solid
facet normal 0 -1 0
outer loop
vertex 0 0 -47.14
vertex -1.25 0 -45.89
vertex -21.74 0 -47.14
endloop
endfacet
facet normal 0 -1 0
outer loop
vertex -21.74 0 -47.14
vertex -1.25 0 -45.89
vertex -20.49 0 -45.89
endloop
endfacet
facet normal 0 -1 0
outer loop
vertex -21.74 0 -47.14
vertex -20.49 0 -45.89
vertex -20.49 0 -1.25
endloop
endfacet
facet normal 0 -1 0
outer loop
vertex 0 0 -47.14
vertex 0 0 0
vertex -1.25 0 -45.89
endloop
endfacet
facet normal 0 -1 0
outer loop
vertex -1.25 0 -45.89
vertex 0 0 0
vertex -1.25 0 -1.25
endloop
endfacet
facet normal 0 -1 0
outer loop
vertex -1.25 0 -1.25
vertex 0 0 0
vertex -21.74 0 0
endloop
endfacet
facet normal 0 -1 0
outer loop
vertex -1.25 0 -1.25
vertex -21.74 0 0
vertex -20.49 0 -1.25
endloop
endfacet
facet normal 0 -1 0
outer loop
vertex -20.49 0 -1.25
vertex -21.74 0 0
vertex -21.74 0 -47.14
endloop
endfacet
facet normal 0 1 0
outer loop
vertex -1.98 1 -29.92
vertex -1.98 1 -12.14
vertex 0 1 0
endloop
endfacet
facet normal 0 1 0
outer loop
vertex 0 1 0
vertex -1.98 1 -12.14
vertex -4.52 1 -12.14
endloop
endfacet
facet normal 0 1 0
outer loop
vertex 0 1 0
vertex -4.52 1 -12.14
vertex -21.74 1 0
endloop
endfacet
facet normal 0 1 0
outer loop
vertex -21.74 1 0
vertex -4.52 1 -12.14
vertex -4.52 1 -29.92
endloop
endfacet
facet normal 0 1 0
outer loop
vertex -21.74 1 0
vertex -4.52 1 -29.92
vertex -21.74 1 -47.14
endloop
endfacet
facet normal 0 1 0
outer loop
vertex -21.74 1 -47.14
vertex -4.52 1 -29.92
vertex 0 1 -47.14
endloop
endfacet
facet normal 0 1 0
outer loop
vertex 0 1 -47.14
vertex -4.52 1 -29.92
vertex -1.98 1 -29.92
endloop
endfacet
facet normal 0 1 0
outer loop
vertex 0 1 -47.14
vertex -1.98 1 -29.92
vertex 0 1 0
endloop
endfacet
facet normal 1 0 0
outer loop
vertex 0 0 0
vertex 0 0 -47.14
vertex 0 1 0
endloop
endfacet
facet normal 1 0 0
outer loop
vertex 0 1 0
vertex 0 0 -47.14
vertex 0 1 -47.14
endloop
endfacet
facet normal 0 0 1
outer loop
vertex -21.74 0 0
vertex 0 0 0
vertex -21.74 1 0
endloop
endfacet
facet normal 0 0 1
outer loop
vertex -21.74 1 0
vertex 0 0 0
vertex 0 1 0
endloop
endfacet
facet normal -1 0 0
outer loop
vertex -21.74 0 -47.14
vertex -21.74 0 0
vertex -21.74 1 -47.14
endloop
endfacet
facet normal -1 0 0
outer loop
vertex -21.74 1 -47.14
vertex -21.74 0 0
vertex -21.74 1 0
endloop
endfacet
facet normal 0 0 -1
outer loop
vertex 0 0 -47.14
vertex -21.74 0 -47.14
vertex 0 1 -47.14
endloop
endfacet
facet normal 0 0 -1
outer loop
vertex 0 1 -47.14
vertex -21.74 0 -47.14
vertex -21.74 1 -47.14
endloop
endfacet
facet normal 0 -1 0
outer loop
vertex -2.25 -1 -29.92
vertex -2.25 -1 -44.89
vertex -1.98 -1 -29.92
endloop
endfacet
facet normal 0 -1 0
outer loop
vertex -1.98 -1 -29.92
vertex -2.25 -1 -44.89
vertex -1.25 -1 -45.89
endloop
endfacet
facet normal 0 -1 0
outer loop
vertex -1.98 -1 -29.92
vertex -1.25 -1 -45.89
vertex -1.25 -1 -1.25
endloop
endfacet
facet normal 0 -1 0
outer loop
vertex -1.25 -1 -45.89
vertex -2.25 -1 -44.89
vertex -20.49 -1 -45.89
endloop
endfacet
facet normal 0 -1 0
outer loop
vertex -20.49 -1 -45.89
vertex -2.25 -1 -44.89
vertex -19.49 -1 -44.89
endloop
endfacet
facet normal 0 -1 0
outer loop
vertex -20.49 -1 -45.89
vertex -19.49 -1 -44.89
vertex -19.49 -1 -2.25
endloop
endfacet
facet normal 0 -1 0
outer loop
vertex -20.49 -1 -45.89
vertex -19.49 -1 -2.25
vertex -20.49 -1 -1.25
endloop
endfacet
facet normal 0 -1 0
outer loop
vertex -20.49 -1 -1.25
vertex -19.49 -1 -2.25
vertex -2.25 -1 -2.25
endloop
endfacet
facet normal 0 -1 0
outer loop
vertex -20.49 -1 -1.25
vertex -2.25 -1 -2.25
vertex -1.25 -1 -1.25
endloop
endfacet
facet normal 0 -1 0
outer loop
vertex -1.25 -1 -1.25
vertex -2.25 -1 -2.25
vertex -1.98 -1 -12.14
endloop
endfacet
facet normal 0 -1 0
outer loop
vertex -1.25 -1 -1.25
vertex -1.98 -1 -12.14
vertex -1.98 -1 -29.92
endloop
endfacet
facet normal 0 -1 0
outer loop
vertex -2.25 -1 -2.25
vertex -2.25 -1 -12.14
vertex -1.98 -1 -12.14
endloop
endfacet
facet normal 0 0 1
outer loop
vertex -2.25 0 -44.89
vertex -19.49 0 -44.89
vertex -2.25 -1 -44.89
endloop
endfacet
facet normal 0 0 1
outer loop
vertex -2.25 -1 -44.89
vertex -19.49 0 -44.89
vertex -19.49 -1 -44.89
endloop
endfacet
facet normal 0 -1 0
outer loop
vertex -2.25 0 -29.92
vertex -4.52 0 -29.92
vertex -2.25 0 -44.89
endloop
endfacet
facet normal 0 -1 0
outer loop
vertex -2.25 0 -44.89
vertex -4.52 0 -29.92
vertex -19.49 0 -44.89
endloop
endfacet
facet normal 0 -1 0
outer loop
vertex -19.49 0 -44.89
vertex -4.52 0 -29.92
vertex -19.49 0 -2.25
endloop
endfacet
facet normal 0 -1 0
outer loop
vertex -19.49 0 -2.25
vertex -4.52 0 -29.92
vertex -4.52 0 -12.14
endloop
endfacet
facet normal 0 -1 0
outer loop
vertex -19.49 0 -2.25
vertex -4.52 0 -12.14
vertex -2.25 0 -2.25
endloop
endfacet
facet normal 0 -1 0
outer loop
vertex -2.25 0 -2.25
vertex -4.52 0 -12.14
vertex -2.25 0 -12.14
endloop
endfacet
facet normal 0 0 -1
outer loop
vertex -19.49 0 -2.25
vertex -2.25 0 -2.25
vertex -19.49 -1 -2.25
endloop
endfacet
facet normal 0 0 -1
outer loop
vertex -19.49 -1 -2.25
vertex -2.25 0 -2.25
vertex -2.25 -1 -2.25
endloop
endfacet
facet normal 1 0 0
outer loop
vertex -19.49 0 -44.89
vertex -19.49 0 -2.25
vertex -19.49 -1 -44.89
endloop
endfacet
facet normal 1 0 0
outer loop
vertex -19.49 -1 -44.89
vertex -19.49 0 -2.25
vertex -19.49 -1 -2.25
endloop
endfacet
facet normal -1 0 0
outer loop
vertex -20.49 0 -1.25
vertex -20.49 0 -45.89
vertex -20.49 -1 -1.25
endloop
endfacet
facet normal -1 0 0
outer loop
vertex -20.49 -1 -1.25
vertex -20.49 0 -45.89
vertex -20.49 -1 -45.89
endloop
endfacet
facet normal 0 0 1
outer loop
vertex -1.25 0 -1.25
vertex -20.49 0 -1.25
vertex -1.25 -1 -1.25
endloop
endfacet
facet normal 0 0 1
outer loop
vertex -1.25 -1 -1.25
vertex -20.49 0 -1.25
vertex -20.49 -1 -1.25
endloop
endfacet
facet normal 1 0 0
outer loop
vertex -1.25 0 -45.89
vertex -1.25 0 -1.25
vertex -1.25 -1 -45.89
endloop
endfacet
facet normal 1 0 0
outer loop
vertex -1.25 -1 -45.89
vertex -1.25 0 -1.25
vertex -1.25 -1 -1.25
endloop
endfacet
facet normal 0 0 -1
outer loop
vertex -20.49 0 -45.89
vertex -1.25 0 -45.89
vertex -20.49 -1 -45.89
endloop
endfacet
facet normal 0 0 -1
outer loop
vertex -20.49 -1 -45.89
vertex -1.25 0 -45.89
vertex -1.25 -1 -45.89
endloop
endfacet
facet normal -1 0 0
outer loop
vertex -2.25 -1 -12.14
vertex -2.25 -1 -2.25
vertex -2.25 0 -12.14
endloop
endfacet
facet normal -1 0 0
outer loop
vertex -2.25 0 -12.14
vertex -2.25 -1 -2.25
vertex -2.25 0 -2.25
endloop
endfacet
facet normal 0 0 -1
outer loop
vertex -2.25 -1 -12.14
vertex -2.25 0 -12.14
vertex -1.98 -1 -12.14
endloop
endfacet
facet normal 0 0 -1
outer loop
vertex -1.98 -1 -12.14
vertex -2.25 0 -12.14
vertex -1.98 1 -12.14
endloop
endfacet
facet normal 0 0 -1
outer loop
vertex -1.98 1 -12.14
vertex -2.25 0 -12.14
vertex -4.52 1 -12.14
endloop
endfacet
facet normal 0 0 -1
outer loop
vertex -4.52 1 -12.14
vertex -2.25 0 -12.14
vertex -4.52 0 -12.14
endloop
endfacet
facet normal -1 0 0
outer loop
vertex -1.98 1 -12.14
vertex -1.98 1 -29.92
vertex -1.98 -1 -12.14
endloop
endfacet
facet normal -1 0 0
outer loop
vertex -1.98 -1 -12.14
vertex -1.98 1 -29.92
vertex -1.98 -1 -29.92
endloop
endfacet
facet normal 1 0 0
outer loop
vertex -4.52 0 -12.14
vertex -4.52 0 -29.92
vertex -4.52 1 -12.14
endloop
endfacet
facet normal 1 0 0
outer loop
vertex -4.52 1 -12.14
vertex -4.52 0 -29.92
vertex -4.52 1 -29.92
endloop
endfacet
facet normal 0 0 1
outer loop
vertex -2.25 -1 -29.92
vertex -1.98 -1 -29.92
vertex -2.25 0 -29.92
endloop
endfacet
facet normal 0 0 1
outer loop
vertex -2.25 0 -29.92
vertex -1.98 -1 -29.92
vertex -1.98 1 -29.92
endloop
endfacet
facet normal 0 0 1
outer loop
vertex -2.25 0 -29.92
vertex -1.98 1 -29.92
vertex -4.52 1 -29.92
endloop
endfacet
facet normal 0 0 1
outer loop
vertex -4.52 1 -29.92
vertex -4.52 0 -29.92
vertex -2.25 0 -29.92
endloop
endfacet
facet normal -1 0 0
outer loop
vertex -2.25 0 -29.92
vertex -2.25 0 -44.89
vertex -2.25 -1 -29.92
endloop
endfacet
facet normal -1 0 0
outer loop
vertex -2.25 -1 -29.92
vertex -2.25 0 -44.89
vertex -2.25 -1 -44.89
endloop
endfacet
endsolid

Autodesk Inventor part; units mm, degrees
ref_plane "YZ Plane" through (0, 0, 0) normal (1, 0, 0) x (0, 1, 0)
ref_plane "XZ Plane" through (0, 0, 0) normal (0, 1, 0) x (-1, 0, 0)
ref_plane "XY Plane" through (0, 0, 0) normal (0, 0, 1) x (1, 0, 0)
sketch "Sketch1" plane through (0, 0, 0) normal (0, 1, 0) x (-1, 0, 0)
  line L0 (20.49, -1.25) -> (1.25, -1.25)
  line L1 (1.25, -1.25) -> (1.25, -45.89)
  line L2 (1.25, -45.89) -> (20.49, -45.89)
  line L3 (20.49, -45.89) -> (20.49, -1.25)
  line L4 (18.49, -3.25) -> (3.25, -3.25) construction
  line L5 (3.25, -3.25) -> (3.25, -43.89) construction
  line L6 (3.25, -43.89) -> (18.49, -43.89) construction
  line L7 (18.49, -43.89) -> (18.49, -3.25) construction
  circle A0 centre (18.49, -3.25) radius 2 construction
  circle A1 centre (18.49, -3.25) radius 0.75 construction
  circle A2 centre (18.49, -43.89) radius 2 construction
  circle A3 centre (18.49, -43.89) radius 0.75 construction
  circle A4 centre (3.25, -43.89) radius 2 construction
  circle A5 centre (3.25, -43.89) radius 0.75 construction
  circle A6 centre (3.25, -3.25) radius 2 construction
  circle A7 centre (3.25, -3.25) radius 0.75 construction
  line L8 (0, -47.14) -> (21.74, -47.14)
  line L9 (21.74, -47.14) -> (21.74, 0)
  line L10 (21.74, 0) -> (0, 0)
  line L11 (0, 0) -> (0, -47.14)
  line L12 (19.49, -2.25) -> (2.25, -2.25)
  line L13 (2.25, -2.25) -> (2.25, -44.89)
  line L14 (2.25, -44.89) -> (19.49, -44.89)
  line L15 (19.49, -44.89) -> (19.49, -2.25)
  dimension "d2" = 40.64
  dimension "d3" = 15.24
  dimension "d4" = 1.5
  dimension "d5" = 4
  dimension "d6" = 1.25
  dimension "d7" = 1.25
  dimension "d8" = 1.25
  dimension "d9" = 1.25
  dimension "d12" = 1
  dimension "d13" = 1
  dimension "d14" = 1
  dimension "d15" = 1
extrude "Extrusion1" add sketch "Sketch1" against normal blind 1 contours L3 L2 L1 L0
extrude "Extrusion2" add sketch "Sketch1" along normal blind 1 contours L3 L2 L1 L0 | L11 L10 L9 L8 | L15 L14 L13 L12
sketch "Sketch2" plane through (0, -1, 0) normal (0, -1, 0) x (1, 0, 0)
  line L0 (-4.52, -29.92) -> (-1.98, -29.92)
  line L1 (-1.98, -29.92) -> (-1.98, -12.14)
  line L2 (-1.98, -12.14) -> (-4.52, -12.14)
  line L3 (-4.52, -12.14) -> (-4.52, -29.92)
  circle A0 centre (-3.25, -28.65) radius 0.508 construction
  circle A1 centre (-3.25, -13.41) radius 0.508 construction
  point P0 (0, 0)
  point P1 (-3.25, -29.92)
  dimension "d20" = 2.54
  dimension "d21" = 17.78
  dimension "d22" = 15.24
  dimension "d23" = 1.27
  dimension "d24" = 1.27
extrude "Extrusion3" cut sketch "Sketch2" against normal through all
equation "\"d7\" = d6"
equation "\"d8\" = d7"
equation "\"d9\" = d7"
equation "\"d21\" = 7 * d20"
equation "\"d23\" = -0.5 * d22 + 0.5 * d21"
equation "\"d24\" = 0.5 * d20"
properties part number "Arduino Lid"
